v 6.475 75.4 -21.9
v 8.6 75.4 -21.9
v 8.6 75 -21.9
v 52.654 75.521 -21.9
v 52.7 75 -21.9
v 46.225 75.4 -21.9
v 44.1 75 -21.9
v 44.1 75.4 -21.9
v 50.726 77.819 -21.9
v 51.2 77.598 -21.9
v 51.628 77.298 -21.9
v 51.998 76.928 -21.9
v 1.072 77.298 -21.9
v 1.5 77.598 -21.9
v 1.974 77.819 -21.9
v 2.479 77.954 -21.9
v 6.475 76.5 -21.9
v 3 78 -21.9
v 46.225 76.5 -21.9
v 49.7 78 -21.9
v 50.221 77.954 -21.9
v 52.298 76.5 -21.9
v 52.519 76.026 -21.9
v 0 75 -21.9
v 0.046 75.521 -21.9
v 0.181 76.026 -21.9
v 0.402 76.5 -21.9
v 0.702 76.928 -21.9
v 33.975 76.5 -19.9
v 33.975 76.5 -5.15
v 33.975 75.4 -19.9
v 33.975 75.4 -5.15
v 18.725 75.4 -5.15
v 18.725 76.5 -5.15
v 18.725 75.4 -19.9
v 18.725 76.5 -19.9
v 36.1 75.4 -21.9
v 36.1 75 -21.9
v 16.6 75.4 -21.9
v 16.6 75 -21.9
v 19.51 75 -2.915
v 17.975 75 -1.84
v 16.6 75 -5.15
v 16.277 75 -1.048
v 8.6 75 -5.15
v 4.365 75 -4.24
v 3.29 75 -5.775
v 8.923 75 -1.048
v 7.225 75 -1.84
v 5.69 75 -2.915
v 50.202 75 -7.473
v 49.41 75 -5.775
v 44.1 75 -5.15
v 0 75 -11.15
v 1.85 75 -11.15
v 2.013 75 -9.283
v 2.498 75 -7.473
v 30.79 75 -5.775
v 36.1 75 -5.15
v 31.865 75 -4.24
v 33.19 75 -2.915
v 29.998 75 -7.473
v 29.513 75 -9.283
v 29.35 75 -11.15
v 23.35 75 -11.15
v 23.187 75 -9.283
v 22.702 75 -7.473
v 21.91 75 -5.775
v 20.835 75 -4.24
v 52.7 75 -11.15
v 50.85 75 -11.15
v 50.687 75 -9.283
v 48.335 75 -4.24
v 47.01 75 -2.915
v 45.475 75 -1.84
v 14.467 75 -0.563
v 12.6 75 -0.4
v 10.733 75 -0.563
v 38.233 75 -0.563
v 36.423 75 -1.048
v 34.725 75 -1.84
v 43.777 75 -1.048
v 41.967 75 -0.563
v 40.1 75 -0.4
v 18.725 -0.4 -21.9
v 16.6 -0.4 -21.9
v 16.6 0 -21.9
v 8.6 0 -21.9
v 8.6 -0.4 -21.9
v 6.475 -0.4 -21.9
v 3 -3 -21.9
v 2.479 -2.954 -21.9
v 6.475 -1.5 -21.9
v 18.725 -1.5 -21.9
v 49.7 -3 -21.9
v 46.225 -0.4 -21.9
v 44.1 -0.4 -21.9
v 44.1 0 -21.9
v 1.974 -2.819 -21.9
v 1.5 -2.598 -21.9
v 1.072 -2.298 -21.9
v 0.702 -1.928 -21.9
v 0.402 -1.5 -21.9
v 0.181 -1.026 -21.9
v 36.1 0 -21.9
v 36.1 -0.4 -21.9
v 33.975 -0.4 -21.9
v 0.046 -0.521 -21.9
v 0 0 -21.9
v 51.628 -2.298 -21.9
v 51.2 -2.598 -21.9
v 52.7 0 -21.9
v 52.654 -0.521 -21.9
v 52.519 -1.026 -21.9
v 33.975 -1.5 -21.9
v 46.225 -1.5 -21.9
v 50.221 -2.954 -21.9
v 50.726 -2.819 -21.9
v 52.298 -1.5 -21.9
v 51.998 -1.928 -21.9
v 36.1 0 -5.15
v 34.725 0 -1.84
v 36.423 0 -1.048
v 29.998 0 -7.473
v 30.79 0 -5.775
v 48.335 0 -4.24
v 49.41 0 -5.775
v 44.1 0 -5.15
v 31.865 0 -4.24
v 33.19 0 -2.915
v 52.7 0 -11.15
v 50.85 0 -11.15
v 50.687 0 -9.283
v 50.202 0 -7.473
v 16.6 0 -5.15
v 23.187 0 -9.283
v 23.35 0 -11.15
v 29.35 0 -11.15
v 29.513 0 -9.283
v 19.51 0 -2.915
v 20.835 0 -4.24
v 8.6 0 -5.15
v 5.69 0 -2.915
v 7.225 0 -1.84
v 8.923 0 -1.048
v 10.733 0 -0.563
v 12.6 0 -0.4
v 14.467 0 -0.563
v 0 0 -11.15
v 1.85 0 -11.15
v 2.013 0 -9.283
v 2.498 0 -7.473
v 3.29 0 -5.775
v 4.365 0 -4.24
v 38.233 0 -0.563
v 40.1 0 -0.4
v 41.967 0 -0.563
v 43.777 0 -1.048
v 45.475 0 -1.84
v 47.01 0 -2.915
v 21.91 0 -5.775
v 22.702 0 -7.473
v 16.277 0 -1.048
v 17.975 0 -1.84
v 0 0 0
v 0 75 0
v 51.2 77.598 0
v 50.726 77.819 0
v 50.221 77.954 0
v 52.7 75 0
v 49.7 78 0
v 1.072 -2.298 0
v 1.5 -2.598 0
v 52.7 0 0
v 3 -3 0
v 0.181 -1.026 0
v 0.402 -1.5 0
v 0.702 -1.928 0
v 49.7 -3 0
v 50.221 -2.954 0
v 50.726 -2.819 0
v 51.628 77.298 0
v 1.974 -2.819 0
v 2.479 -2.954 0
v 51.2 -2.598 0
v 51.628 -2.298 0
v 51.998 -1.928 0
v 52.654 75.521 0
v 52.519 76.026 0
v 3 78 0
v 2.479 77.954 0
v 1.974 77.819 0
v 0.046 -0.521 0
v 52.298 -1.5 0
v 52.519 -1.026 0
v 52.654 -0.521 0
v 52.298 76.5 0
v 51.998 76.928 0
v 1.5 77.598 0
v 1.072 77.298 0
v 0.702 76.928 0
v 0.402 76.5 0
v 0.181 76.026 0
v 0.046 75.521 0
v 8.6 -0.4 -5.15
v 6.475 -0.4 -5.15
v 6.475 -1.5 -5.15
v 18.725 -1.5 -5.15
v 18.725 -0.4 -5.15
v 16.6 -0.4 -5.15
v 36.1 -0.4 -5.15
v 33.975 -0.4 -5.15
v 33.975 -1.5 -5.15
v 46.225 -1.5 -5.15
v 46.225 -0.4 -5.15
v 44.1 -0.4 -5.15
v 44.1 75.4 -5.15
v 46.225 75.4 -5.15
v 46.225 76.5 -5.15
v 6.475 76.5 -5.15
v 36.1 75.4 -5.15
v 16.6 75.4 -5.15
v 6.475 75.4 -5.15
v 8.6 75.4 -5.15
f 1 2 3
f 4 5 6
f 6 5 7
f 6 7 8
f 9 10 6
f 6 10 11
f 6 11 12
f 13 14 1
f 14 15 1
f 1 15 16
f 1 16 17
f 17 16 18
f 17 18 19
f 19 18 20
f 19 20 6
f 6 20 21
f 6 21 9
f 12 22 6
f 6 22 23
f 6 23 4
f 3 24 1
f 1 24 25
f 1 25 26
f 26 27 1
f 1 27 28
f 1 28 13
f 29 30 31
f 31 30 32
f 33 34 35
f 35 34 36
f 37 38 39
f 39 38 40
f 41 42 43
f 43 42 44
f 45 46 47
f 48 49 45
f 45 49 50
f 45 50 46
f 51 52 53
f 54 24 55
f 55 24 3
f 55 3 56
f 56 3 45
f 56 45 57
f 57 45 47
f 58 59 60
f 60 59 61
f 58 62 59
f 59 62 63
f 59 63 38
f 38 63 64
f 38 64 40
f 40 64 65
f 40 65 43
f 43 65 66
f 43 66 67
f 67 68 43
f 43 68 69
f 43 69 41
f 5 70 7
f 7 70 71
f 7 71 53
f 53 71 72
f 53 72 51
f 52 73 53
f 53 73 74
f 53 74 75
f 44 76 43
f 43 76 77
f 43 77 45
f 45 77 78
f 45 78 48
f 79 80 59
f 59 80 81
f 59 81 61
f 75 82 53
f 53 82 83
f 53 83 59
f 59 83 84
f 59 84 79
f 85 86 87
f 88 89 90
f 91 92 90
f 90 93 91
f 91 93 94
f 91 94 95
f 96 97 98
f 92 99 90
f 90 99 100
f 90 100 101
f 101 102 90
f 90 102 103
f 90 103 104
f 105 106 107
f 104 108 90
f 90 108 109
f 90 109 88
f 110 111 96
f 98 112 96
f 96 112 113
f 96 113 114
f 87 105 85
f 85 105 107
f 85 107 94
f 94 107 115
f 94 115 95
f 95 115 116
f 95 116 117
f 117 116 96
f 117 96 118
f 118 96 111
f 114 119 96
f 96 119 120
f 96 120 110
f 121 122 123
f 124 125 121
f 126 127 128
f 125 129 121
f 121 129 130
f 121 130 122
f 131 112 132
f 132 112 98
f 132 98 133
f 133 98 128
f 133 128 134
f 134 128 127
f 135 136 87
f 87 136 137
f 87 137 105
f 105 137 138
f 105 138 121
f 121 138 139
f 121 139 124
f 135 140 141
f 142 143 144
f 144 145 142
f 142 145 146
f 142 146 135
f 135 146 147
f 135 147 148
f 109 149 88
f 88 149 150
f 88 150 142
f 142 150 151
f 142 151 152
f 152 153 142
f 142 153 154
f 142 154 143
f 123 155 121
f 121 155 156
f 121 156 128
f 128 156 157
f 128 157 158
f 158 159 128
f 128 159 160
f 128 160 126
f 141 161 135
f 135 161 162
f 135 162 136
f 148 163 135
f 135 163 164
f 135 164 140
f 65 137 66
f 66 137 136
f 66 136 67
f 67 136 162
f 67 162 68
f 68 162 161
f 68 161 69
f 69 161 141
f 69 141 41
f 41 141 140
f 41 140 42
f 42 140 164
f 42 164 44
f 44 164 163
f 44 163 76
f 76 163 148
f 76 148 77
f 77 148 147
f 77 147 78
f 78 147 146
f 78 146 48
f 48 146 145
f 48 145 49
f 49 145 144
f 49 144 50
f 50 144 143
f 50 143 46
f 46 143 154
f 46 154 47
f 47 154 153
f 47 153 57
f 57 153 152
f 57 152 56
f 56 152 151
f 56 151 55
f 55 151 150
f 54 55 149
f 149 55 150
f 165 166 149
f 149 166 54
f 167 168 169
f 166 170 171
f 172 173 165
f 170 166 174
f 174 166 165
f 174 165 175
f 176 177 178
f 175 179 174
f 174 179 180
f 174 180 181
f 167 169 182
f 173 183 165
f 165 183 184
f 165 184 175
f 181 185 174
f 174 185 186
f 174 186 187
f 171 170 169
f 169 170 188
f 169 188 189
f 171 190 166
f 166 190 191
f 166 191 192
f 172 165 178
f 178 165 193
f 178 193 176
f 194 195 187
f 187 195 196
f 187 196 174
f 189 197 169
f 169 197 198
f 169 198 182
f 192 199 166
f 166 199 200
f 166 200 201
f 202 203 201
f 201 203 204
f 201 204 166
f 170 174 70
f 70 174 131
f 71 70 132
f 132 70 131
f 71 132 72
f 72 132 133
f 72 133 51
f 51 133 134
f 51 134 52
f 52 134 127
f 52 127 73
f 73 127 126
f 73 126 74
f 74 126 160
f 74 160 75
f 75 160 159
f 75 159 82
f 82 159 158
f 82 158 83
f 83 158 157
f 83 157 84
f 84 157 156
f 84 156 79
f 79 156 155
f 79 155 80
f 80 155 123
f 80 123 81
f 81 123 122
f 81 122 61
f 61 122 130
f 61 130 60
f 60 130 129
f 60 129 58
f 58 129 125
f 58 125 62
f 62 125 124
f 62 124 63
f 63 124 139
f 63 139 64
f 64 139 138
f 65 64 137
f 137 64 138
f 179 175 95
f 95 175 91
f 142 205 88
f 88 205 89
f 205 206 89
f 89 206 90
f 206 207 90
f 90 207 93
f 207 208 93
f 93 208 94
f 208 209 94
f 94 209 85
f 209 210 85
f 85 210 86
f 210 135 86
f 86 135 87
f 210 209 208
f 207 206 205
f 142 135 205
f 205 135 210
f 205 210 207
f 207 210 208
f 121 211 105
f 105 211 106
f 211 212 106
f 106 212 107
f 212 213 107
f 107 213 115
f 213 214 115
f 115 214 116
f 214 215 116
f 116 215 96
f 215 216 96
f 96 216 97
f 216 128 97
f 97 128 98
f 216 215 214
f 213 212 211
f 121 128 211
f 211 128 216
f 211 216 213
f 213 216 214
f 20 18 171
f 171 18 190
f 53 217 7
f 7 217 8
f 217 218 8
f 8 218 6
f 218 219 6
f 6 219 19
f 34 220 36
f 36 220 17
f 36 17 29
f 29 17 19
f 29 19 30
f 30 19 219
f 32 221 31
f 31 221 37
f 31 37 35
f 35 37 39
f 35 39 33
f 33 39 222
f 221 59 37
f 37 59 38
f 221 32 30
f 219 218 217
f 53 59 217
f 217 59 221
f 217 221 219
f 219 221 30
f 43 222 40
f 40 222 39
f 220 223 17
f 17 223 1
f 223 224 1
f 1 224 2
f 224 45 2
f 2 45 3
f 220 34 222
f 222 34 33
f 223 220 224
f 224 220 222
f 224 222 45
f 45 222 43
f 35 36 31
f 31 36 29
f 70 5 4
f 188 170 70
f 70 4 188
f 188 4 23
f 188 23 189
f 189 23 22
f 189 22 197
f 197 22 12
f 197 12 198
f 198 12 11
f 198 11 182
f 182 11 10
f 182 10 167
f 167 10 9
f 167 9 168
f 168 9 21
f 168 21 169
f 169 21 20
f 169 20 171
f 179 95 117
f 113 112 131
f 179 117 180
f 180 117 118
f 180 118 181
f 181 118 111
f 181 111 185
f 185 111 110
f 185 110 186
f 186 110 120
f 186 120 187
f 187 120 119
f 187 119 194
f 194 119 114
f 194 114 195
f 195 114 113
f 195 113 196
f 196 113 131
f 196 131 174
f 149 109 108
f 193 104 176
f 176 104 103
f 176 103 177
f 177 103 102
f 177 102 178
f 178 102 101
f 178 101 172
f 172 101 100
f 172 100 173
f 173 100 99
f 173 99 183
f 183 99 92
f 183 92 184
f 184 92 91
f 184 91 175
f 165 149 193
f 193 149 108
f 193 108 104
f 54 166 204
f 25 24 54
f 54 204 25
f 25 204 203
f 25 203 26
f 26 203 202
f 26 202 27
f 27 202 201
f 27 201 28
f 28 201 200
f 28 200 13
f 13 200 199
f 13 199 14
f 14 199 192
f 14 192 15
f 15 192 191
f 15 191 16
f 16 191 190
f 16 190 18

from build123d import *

# Parameters (mm, degrees)
BOSS_EXTRUDE1_DEPTH  = 75
BOSS_EXTRUDE2_START  = -3
SKETCH1_3_R          = 10.75
BOSS_EXTRUDE2_DEPTH  = 3
CUT_EXTRUDE1_DEPTH   = 16.75
MIRROR3_COPY_1_DEPTH = 16.75
SKETCH5_W            = 15.25
SKETCH5_H            = 1.1
CUT_EXTRUDE2_DEPTH   = 2
FILLET1_R            = 3


with BuildPart() as part:
    # Sketch1 → Boss-Extrude1 (new body)
    with BuildSketch(Plane(origin=(0, 0, 0), x_dir=(1, 0, 0), z_dir=(0, 1, 0))):
        with BuildLine():
            Line((0, 0), (12.6, 0))
            Line((12.6, 0), (12.6, 0.4))
            ThreePointArc((12.6, 0.4), (4.998602102, 3.548602102), (1.85, 11.15))
            Line((1.85, 11.15), (0, 11.15))
            Line((0, 11.15), (0, 0))
        make_face()
        with BuildLine():
            Line((12.6, 0), (26.35, 0))
            Line((26.35, 0), (26.35, 11.15))
            Line((26.35, 11.15), (23.35, 11.15))
            ThreePointArc((23.35, 11.15), (20.201397898, 3.548602102), (12.6, 0.4))
            Line((12.6, 0.4), (12.6, 0))
        make_face()
        with BuildLine():
            Line((26.35, 11.15), (26.35, 0))
            Line((26.35, 0), (52.7, 0))
            Line((52.7, 0), (52.7, 11.15))
            Line((52.7, 11.15), (50.85, 11.15))
            ThreePointArc((50.85, 11.15), (40.1, 0.4), (29.35, 11.15))
            Line((29.35, 11.15), (26.35, 11.15))
        make_face()
    extrude(amount=BOSS_EXTRUDE1_DEPTH)

    # Sketch1<3> → Boss-Extrude2 (add)
    with BuildSketch(Plane(origin=(0, 0, 0), x_dir=(1, 0, 0), z_dir=(0, 1, 0)).offset(BOSS_EXTRUDE2_START)):
        with BuildLine():
            Line((50.85, 11.15), (52.7, 11.15))
            Line((52.7, 11.15), (52.7, 21.9))
            Line((52.7, 21.9), (40.1, 21.9))
            ThreePointArc((40.1, 21.9), (47.701397898, 18.751397898), (50.85, 11.15))
        make_face()
        with BuildLine():
            Line((26.35, 11.15), (26.35, 0))
            Line((26.35, 0), (52.7, 0))
            Line((52.7, 0), (52.7, 11.15))
            Line((52.7, 11.15), (50.85, 11.15))
            ThreePointArc((50.85, 11.15), (40.1, 0.4), (29.35, 11.15))
            Line((29.35, 11.15), (26.35, 11.15))
        make_face()
        with Locations((40.1, 11.15)):
            Circle(SKETCH1_3_R)
        with BuildLine():
            Line((23.35, 11.15), (26.35, 11.15))
            Line((26.35, 11.15), (29.35, 11.15))
            ThreePointArc((29.35, 11.15), (32.498602102, 18.751397898), (40.1, 21.9))
            Line((40.1, 21.9), (12.6, 21.9))
            ThreePointArc((12.6, 21.9), (20.201397898, 18.751397898), (23.35, 11.15))
        make_face()
        with BuildLine():
            Line((12.6, 0), (26.35, 0))
            Line((26.35, 0), (26.35, 11.15))
            Line((26.35, 11.15), (23.35, 11.15))
            ThreePointArc((23.35, 11.15), (20.201397898, 3.548602102), (12.6, 0.4))
            Line((12.6, 0.4), (12.6, 0))
        make_face()
        with Locations((12.6, 11.15)):
            Circle(SKETCH1_3_R)
        with BuildLine():
            Line((0, 0), (12.6, 0))
            Line((12.6, 0), (12.6, 0.4))
            ThreePointArc((12.6, 0.4), (4.998602102, 3.548602102), (1.85, 11.15))
            Line((1.85, 11.15), (0, 11.15))
            Line((0, 11.15), (0, 0))
        make_face()
        with BuildLine():
            ThreePointArc((1.85, 11.15), (4.998602102, 18.751397898), (12.6, 21.9))
            Line((12.6, 21.9), (0, 21.9))
            Line((0, 21.9), (0, 11.15))
            Line((0, 11.15), (1.85, 11.15))
        make_face()
    boss_extrude2 = extrude(amount=BOSS_EXTRUDE2_DEPTH)

    # Sketch4 → Cut-Extrude1 (cut)
    with BuildSketch(Plane(origin=(0, 0, -21.9), x_dir=(-1, 0, 0), z_dir=(0, 0, -1))):
        Polygon((-18.725, -1.5), (-6.475, -1.5), (-6.475, -0.4), (-8.6, -0.4), (-8.6, 0), (-16.6, 0), (-16.6, -0.4), (-18.725, -0.4), align=None)
    cut_extrude1 = extrude(amount=-CUT_EXTRUDE1_DEPTH, mode=Mode.SUBTRACT)

    # Mirror2: Cut-Extrude1 across plane
    add(cut_extrude1.mirror(Plane(origin=(26.35, 0, 0), x_dir=(0, 0, 1), z_dir=(1, 0, 0))), mode=Mode.SUBTRACT)

    # Mirror3: Boss-Extrude2, Cut-Extrude1 across plane
    add(boss_extrude2.mirror(Plane.ZX.offset(37.5)))
    add(cut_extrude1.mirror(Plane.ZX.offset(37.5)), mode=Mode.SUBTRACT)

    # Mirror3 copy 1 sketch → Mirror3 copy 1 (cut)
    with BuildSketch(Plane(origin=(52.7, 75, -21.9), x_dir=(1, 0, 0), z_dir=(0, 0, -1))):
        Polygon((-18.725, -1.5), (-6.475, -1.5), (-6.475, -0.4), (-8.6, -0.4), (-8.6, 0), (-16.6, 0), (-16.6, -0.4), (-18.725, -0.4), align=None)
    extrude(amount=-MIRROR3_COPY_1_DEPTH, mode=Mode.SUBTRACT)

    # Sketch5 → Cut-Extrude2 (cut)
    with BuildSketch(Plane(origin=(0, 0, -21.9), x_dir=(-1, 0, 0), z_dir=(0, 0, -1))):
        with Locations((-26.35, 75.95)):
            Rectangle(SKETCH5_W, SKETCH5_H)
    extrude(amount=-CUT_EXTRUDE2_DEPTH, mode=Mode.SUBTRACT)

    # Fillet1
    fillet1_edges = [part.edges().sort_by_distance(p)[0] for p in [
        (0, 78, -10.95),
        (52.7, 78, -10.95),
        (52.7, -3, -10.95),
        (0, -3, -10.95),
    ]]
    fillet(fillet1_edges, radius=FILLET1_R - 0.0001)  # a hair under: the kernel refuses the full size


solid = part.part
